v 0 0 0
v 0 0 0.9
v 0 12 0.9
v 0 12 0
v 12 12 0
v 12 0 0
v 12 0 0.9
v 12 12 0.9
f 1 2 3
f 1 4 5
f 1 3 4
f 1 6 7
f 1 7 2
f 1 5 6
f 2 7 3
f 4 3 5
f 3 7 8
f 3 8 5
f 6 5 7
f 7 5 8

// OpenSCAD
/* Warning, this is a very basic generator with a lot of approximation 
input data : [VQFN, 2ZX, 12x12x0.9mm, 108, , A, C04-00478A]
generated by com.zoubworld.electronics.cad.model3d.Basic
Date : Sun Feb 15 10:50:48 CET 2026
*/

//body
color("black")
translate([0,0,0])
cube([12.0,12.0,0.9], center=false);
